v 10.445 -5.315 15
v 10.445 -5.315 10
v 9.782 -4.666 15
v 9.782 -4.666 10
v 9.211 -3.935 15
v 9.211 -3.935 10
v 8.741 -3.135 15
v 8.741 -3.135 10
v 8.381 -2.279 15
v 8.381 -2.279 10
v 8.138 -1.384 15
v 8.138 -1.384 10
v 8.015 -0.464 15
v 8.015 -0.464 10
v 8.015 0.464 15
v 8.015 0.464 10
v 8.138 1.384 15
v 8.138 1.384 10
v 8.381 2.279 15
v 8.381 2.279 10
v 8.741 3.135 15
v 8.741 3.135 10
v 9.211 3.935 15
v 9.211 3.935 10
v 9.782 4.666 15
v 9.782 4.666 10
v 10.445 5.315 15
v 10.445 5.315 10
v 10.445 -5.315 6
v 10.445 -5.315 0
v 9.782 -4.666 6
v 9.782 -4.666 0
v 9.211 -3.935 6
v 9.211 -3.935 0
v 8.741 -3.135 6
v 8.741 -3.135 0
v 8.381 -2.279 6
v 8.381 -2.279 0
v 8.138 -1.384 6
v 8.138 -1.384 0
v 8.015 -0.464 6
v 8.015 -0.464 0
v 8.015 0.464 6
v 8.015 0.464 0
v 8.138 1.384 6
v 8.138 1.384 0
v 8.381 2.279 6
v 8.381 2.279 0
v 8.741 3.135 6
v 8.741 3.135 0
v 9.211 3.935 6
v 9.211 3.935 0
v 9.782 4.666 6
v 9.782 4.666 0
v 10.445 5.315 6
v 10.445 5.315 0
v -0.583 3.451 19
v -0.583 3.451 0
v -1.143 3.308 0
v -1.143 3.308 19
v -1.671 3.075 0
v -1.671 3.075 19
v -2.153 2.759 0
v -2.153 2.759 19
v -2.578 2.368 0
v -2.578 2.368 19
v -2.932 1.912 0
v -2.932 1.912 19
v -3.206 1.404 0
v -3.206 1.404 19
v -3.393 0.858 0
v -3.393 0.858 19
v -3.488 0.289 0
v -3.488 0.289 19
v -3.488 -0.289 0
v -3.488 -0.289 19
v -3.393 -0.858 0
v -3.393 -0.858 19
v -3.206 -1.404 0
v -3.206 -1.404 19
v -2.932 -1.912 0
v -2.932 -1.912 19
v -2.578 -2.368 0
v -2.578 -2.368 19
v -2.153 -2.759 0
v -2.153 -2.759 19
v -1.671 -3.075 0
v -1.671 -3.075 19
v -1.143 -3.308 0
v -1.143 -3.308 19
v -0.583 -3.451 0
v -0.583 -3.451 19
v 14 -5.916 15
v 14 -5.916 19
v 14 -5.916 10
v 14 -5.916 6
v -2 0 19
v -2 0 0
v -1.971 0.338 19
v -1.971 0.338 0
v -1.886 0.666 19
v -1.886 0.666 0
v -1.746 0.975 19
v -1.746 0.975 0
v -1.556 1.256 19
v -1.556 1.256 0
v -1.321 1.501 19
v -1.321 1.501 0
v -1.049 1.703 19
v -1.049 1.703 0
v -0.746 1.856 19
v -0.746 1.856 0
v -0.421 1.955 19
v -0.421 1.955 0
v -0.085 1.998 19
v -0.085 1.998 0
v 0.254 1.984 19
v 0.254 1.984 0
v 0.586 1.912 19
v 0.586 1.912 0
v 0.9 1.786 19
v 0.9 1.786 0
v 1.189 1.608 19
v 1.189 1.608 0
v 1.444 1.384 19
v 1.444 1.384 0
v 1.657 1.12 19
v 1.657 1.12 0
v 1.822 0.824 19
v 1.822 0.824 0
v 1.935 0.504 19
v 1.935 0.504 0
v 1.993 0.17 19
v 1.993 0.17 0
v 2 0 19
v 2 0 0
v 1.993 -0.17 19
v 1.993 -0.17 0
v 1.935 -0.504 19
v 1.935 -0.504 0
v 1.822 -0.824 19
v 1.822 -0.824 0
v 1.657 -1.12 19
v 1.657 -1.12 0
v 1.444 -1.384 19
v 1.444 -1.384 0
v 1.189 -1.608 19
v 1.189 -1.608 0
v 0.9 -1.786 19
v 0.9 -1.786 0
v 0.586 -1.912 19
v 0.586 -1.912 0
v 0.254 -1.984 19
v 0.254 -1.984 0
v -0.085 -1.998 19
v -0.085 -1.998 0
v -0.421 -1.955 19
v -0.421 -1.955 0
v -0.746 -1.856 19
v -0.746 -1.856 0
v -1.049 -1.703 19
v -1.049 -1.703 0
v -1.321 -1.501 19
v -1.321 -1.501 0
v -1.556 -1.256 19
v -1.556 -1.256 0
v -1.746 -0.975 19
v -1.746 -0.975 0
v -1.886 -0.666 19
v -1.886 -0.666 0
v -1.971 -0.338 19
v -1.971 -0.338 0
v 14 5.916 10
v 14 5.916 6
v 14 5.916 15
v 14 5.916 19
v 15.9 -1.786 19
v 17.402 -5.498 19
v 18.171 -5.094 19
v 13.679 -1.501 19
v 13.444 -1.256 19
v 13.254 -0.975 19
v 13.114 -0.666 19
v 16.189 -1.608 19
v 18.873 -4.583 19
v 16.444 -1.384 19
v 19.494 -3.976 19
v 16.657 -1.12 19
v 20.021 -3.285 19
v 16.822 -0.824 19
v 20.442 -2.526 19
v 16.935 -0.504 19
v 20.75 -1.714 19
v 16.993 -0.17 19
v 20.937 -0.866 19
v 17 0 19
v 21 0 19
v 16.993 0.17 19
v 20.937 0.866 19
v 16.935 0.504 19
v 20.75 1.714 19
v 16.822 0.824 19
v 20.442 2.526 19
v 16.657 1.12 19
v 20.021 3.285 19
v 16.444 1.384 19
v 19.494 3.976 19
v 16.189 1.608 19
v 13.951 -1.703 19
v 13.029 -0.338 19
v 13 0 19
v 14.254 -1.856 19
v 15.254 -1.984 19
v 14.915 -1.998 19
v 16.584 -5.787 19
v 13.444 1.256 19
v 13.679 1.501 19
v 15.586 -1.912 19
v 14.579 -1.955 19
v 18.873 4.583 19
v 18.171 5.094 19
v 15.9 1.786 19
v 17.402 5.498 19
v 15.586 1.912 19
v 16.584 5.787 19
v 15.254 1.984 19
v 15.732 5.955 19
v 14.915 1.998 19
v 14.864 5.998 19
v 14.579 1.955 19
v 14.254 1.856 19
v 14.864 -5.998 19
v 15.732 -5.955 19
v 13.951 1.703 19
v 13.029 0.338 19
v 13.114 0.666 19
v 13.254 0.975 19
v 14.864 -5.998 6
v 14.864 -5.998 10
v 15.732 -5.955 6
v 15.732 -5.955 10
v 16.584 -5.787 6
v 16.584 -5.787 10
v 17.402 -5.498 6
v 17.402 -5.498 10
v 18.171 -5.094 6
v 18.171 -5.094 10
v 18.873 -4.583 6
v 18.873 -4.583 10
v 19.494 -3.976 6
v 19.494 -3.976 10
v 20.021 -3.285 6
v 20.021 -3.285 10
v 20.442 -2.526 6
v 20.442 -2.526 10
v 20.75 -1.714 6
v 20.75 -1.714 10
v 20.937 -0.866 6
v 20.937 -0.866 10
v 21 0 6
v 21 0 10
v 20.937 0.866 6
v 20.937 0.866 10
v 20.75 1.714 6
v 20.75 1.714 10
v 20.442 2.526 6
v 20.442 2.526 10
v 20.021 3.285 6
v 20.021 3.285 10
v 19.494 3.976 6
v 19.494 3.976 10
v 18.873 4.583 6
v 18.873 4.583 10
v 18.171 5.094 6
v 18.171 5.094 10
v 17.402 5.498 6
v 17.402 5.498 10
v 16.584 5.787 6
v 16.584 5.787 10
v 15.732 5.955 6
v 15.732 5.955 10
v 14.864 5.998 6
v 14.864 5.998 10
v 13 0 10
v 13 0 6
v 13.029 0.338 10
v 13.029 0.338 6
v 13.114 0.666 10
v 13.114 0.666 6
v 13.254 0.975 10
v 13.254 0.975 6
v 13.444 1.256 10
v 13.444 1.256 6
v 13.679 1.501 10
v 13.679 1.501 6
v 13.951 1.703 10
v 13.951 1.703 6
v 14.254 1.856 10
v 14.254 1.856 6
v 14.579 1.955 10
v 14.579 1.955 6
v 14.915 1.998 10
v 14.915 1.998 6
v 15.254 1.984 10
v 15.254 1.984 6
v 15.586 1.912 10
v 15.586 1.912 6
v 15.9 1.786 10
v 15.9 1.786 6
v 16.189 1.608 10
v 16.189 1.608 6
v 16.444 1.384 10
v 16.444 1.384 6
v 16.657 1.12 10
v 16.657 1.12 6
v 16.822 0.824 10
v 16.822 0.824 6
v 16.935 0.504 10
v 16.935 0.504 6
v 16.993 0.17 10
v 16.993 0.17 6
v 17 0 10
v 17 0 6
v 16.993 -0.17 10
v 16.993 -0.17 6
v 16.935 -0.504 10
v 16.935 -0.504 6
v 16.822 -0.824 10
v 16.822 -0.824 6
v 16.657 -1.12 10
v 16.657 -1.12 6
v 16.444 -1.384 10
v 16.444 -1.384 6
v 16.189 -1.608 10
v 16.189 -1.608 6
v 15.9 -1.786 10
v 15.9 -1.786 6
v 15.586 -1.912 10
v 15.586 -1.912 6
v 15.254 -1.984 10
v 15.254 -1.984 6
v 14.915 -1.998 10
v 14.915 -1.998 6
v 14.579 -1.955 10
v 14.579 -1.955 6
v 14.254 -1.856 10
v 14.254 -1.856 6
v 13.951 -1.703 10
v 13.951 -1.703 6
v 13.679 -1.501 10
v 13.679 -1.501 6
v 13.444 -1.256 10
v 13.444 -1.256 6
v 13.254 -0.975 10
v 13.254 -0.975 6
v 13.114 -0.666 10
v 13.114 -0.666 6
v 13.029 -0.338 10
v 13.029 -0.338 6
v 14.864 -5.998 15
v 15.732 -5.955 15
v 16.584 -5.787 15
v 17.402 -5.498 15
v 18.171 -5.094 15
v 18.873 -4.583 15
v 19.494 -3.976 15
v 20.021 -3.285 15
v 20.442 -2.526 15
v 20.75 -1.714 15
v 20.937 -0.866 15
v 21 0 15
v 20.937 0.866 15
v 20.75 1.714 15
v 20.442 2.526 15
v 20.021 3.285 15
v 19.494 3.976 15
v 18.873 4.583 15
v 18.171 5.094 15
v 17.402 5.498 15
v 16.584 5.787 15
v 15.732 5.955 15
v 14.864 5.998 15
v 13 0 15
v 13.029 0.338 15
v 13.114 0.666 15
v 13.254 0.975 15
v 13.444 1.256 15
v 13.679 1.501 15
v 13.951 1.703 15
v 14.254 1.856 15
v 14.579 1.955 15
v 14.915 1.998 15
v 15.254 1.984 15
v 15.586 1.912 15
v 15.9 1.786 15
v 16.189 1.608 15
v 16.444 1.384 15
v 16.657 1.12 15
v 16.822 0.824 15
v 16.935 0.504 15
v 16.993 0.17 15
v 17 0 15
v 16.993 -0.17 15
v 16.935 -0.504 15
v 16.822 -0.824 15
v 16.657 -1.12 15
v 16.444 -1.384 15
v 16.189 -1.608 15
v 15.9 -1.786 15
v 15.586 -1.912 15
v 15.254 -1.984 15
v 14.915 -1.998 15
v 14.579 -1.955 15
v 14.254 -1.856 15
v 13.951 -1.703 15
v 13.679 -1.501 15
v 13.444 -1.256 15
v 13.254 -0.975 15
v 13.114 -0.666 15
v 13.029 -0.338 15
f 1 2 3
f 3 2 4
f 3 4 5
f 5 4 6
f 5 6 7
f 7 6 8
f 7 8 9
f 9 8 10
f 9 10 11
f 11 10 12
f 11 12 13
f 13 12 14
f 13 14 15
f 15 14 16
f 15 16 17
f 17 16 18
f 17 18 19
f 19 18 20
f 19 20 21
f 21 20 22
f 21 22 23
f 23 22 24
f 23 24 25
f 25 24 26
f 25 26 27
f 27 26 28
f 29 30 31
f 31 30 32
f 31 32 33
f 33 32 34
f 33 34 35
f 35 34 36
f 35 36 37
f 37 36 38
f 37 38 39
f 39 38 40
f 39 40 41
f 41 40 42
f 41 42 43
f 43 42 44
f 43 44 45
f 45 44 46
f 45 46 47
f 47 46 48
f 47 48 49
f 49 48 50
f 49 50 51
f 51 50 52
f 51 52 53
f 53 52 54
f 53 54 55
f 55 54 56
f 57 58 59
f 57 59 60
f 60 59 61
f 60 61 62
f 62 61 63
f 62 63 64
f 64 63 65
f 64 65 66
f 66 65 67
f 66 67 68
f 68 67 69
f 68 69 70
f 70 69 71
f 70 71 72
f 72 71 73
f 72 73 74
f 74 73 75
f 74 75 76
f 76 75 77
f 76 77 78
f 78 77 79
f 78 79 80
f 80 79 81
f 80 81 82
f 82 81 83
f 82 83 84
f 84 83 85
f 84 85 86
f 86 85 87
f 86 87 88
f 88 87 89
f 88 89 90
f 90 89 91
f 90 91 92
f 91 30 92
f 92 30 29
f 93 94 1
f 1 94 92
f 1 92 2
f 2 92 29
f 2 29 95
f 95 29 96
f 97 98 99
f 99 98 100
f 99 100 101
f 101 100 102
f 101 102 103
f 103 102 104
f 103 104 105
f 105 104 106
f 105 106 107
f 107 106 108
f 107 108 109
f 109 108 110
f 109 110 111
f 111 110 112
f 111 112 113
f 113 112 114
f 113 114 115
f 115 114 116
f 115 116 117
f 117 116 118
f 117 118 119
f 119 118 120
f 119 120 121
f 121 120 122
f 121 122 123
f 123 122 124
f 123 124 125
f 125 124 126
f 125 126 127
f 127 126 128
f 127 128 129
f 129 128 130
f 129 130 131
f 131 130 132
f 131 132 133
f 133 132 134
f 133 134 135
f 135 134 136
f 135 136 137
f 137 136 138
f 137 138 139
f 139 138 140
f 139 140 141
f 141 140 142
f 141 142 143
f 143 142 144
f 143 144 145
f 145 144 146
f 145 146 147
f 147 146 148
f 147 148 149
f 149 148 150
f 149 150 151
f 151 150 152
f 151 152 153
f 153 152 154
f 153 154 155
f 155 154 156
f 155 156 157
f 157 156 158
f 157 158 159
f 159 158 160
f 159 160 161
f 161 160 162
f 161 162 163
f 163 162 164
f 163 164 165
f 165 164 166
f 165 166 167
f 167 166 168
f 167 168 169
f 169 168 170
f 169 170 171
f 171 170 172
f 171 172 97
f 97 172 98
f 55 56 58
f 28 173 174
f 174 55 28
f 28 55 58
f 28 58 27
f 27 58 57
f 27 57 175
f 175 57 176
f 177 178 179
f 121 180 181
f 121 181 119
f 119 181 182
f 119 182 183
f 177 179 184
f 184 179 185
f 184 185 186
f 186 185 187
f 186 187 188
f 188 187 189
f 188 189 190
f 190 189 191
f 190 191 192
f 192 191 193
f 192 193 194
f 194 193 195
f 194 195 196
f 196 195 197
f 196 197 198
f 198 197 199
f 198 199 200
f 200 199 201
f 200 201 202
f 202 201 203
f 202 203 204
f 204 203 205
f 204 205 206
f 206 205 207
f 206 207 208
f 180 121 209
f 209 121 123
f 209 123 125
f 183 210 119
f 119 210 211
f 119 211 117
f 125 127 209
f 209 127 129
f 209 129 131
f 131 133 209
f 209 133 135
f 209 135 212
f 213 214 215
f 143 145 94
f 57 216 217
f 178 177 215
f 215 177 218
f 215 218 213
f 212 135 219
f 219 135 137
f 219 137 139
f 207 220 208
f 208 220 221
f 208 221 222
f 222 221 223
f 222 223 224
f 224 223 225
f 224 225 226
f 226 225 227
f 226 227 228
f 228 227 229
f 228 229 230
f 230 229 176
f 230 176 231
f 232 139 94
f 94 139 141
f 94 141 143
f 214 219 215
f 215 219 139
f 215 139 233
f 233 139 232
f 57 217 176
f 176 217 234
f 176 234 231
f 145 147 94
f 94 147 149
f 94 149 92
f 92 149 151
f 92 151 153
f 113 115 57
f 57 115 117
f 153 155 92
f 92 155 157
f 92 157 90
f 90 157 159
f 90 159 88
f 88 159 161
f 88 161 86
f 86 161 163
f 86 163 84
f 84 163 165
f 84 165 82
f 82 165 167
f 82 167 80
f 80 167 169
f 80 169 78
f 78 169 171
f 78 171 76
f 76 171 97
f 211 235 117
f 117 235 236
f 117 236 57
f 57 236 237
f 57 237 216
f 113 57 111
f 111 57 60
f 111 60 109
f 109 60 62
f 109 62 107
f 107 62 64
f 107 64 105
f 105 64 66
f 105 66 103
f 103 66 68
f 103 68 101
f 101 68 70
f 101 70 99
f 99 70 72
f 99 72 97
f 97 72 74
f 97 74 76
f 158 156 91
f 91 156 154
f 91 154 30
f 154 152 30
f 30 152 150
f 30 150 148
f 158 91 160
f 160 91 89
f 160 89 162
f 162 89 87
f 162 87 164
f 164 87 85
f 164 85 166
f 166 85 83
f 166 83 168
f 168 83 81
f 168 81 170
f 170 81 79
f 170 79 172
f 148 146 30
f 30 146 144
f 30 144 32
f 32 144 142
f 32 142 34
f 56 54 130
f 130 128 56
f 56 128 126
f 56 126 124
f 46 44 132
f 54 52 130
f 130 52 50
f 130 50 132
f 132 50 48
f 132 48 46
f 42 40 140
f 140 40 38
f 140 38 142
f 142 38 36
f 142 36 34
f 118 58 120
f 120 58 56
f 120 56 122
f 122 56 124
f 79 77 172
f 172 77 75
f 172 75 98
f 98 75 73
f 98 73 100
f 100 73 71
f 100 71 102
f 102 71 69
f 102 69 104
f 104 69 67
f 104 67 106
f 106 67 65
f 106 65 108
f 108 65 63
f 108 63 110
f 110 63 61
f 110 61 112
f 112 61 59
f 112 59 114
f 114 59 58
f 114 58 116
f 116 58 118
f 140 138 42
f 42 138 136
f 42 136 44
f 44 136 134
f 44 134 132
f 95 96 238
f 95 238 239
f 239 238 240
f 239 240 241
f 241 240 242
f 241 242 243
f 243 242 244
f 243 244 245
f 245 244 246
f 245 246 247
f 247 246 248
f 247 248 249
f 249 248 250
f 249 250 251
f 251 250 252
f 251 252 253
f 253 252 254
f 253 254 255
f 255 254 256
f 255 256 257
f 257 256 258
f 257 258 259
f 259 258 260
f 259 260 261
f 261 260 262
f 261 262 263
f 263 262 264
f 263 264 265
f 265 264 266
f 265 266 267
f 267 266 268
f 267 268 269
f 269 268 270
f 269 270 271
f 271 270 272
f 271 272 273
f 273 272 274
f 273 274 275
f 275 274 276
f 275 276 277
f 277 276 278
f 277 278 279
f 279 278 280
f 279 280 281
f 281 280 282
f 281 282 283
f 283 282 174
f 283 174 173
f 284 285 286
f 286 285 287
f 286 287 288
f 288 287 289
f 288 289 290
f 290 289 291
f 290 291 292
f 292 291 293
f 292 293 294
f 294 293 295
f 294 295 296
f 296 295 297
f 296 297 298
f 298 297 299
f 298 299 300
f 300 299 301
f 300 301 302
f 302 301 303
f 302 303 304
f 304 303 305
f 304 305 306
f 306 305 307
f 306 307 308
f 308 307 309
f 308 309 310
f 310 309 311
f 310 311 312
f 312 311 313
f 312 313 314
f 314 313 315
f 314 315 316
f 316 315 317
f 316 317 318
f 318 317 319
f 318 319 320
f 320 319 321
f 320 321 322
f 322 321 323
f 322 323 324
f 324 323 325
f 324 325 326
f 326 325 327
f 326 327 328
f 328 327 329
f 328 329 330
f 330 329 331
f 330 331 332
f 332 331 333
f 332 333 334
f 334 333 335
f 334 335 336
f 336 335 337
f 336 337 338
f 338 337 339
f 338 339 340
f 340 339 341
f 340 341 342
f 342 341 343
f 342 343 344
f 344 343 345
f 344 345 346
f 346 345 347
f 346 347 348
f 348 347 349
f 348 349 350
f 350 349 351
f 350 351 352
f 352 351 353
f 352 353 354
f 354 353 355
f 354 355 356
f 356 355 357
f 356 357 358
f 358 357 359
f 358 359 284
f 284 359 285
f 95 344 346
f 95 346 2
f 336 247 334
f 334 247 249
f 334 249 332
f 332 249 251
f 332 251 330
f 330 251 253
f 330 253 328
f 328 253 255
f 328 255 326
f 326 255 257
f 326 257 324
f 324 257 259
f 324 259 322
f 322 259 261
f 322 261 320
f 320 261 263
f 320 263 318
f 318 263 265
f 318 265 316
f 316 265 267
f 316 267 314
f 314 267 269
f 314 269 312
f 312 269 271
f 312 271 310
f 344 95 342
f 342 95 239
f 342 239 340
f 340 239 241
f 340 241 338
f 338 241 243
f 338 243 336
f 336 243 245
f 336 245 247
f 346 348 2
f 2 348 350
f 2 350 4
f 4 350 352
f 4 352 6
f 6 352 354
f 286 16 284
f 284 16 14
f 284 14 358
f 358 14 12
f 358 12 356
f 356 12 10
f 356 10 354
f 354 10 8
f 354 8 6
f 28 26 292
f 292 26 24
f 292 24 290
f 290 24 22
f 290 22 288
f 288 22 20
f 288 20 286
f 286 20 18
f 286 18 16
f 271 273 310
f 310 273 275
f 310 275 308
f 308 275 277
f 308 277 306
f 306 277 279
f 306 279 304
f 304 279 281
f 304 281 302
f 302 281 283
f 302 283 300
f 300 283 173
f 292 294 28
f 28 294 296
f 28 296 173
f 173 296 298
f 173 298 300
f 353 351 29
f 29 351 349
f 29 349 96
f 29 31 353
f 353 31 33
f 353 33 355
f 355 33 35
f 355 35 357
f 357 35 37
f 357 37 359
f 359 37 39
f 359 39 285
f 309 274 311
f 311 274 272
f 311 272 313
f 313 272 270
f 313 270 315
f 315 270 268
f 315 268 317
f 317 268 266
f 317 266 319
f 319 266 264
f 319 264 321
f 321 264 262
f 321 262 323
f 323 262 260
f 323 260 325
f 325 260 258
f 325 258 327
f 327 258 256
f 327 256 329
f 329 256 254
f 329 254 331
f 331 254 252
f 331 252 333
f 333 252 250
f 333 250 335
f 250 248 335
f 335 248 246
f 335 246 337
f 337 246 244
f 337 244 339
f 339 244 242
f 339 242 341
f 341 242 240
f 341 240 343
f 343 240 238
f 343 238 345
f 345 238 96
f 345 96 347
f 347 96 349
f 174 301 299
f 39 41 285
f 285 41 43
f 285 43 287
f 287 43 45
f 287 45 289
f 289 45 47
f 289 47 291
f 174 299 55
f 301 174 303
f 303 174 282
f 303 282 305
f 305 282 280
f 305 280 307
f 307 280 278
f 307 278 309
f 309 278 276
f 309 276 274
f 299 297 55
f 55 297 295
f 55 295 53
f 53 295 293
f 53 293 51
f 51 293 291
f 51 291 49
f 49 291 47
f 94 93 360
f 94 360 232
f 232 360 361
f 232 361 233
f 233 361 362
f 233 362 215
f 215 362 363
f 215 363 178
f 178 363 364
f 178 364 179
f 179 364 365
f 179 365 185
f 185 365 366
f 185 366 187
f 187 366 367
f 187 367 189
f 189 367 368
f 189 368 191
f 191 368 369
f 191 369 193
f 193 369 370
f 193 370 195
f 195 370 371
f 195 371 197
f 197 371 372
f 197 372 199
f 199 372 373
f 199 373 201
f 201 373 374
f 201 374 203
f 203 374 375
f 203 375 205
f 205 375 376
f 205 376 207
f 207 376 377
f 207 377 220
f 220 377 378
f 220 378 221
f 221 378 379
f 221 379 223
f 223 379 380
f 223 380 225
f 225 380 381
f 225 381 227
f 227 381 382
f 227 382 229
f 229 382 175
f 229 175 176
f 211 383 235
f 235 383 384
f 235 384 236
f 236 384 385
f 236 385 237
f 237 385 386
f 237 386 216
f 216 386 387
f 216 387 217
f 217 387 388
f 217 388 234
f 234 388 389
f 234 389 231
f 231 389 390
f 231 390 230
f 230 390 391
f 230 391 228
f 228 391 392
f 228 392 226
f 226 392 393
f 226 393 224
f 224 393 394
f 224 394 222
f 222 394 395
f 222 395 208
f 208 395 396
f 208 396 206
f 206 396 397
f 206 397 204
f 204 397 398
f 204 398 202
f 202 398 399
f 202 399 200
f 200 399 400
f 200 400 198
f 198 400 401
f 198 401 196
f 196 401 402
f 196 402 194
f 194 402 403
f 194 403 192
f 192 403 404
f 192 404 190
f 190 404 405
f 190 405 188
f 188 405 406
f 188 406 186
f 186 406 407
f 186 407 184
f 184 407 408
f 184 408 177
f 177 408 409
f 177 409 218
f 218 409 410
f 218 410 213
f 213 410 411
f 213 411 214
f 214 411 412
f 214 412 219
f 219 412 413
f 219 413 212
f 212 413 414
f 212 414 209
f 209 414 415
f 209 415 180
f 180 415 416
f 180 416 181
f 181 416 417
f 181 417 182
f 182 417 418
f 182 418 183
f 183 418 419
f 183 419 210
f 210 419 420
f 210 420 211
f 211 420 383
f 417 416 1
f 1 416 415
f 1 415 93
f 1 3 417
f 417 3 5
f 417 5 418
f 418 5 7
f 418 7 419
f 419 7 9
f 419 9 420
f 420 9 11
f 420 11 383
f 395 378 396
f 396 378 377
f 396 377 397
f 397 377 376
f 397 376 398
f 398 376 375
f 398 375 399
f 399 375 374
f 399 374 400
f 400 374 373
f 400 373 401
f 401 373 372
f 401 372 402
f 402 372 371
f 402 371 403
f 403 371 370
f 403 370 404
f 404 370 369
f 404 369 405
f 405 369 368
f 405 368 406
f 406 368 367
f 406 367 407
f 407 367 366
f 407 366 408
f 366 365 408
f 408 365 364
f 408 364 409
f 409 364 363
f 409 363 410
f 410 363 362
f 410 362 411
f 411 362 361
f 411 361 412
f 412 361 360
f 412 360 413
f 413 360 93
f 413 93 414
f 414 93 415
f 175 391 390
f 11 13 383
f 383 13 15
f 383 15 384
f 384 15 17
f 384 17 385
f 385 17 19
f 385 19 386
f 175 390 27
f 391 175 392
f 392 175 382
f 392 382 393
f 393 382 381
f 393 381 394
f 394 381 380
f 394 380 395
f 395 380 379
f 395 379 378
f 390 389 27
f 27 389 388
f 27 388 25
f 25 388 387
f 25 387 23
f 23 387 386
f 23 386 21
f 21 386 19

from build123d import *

# Parameters (mm, degrees)
ESQUISSE1_R        = 2
BOSS_EXTRU_2_DEPTH = 19
BOSS_EXTRU_3_START = 6
ESQUISSE1_4_R      = 2
BOSS_EXTRU_3_DEPTH = 4
BOSS_EXTRU_4_START = 15
ESQUISSE1_5_R      = 2
BOSS_EXTRU_4_DEPTH = 4


with BuildPart() as part:
    # Esquisse1 → Boss.-Extru.2 (new body)
    with BuildSketch(Plane.XY):
        with BuildLine():
            Line((10.444878499, 5.315154571), (-0.583333333, 3.45104654))
            ThreePointArc((-0.583333333, 3.45104654), (-3.5, 0), (-0.583333333, -3.45104654))
            Line((-0.583333333, -3.45104654), (10.444878499, -5.315154571))
            ThreePointArc((10.444878499, -5.315154571), (8, 0), (10.444878499, 5.315154571))
        make_face()
        Circle(ESQUISSE1_R, mode=Mode.SUBTRACT)
    extrude(amount=BOSS_EXTRU_2_DEPTH)

    # Esquisse1<4> → Boss.-Extru.3 (add)
    with BuildSketch(Plane.XY.offset(BOSS_EXTRU_3_START)):
        with BuildLine():
            Line((14, 5.916079783), (10.444878499, 5.315154571))
            ThreePointArc((10.444878499, 5.315154571), (8, 0), (10.444878499, -5.315154571))
            Line((10.444878499, -5.315154571), (14, -5.916079783))
            ThreePointArc((14, -5.916079783), (21, 0), (14, 5.916079783))
        make_face()
        with Locations((15, 0)):
            Circle(ESQUISSE1_4_R, mode=Mode.SUBTRACT)
    extrude(amount=BOSS_EXTRU_3_DEPTH)

    # Esquisse1<5> → Boss.-Extru.4 (add)
    with BuildSketch(Plane.XY.offset(BOSS_EXTRU_4_START)):
        with BuildLine():
            Line((14, 5.916079783), (10.444878499, 5.315154571))
            ThreePointArc((10.444878499, 5.315154571), (8, 0), (10.444878499, -5.315154571))
            Line((10.444878499, -5.315154571), (14, -5.916079783))
            ThreePointArc((14, -5.916079783), (21, 0), (14, 5.916079783))
        make_face()
        with Locations((15, 0)):
            Circle(ESQUISSE1_5_R, mode=Mode.SUBTRACT)
    extrude(amount=BOSS_EXTRU_4_DEPTH)


solid = part.part
